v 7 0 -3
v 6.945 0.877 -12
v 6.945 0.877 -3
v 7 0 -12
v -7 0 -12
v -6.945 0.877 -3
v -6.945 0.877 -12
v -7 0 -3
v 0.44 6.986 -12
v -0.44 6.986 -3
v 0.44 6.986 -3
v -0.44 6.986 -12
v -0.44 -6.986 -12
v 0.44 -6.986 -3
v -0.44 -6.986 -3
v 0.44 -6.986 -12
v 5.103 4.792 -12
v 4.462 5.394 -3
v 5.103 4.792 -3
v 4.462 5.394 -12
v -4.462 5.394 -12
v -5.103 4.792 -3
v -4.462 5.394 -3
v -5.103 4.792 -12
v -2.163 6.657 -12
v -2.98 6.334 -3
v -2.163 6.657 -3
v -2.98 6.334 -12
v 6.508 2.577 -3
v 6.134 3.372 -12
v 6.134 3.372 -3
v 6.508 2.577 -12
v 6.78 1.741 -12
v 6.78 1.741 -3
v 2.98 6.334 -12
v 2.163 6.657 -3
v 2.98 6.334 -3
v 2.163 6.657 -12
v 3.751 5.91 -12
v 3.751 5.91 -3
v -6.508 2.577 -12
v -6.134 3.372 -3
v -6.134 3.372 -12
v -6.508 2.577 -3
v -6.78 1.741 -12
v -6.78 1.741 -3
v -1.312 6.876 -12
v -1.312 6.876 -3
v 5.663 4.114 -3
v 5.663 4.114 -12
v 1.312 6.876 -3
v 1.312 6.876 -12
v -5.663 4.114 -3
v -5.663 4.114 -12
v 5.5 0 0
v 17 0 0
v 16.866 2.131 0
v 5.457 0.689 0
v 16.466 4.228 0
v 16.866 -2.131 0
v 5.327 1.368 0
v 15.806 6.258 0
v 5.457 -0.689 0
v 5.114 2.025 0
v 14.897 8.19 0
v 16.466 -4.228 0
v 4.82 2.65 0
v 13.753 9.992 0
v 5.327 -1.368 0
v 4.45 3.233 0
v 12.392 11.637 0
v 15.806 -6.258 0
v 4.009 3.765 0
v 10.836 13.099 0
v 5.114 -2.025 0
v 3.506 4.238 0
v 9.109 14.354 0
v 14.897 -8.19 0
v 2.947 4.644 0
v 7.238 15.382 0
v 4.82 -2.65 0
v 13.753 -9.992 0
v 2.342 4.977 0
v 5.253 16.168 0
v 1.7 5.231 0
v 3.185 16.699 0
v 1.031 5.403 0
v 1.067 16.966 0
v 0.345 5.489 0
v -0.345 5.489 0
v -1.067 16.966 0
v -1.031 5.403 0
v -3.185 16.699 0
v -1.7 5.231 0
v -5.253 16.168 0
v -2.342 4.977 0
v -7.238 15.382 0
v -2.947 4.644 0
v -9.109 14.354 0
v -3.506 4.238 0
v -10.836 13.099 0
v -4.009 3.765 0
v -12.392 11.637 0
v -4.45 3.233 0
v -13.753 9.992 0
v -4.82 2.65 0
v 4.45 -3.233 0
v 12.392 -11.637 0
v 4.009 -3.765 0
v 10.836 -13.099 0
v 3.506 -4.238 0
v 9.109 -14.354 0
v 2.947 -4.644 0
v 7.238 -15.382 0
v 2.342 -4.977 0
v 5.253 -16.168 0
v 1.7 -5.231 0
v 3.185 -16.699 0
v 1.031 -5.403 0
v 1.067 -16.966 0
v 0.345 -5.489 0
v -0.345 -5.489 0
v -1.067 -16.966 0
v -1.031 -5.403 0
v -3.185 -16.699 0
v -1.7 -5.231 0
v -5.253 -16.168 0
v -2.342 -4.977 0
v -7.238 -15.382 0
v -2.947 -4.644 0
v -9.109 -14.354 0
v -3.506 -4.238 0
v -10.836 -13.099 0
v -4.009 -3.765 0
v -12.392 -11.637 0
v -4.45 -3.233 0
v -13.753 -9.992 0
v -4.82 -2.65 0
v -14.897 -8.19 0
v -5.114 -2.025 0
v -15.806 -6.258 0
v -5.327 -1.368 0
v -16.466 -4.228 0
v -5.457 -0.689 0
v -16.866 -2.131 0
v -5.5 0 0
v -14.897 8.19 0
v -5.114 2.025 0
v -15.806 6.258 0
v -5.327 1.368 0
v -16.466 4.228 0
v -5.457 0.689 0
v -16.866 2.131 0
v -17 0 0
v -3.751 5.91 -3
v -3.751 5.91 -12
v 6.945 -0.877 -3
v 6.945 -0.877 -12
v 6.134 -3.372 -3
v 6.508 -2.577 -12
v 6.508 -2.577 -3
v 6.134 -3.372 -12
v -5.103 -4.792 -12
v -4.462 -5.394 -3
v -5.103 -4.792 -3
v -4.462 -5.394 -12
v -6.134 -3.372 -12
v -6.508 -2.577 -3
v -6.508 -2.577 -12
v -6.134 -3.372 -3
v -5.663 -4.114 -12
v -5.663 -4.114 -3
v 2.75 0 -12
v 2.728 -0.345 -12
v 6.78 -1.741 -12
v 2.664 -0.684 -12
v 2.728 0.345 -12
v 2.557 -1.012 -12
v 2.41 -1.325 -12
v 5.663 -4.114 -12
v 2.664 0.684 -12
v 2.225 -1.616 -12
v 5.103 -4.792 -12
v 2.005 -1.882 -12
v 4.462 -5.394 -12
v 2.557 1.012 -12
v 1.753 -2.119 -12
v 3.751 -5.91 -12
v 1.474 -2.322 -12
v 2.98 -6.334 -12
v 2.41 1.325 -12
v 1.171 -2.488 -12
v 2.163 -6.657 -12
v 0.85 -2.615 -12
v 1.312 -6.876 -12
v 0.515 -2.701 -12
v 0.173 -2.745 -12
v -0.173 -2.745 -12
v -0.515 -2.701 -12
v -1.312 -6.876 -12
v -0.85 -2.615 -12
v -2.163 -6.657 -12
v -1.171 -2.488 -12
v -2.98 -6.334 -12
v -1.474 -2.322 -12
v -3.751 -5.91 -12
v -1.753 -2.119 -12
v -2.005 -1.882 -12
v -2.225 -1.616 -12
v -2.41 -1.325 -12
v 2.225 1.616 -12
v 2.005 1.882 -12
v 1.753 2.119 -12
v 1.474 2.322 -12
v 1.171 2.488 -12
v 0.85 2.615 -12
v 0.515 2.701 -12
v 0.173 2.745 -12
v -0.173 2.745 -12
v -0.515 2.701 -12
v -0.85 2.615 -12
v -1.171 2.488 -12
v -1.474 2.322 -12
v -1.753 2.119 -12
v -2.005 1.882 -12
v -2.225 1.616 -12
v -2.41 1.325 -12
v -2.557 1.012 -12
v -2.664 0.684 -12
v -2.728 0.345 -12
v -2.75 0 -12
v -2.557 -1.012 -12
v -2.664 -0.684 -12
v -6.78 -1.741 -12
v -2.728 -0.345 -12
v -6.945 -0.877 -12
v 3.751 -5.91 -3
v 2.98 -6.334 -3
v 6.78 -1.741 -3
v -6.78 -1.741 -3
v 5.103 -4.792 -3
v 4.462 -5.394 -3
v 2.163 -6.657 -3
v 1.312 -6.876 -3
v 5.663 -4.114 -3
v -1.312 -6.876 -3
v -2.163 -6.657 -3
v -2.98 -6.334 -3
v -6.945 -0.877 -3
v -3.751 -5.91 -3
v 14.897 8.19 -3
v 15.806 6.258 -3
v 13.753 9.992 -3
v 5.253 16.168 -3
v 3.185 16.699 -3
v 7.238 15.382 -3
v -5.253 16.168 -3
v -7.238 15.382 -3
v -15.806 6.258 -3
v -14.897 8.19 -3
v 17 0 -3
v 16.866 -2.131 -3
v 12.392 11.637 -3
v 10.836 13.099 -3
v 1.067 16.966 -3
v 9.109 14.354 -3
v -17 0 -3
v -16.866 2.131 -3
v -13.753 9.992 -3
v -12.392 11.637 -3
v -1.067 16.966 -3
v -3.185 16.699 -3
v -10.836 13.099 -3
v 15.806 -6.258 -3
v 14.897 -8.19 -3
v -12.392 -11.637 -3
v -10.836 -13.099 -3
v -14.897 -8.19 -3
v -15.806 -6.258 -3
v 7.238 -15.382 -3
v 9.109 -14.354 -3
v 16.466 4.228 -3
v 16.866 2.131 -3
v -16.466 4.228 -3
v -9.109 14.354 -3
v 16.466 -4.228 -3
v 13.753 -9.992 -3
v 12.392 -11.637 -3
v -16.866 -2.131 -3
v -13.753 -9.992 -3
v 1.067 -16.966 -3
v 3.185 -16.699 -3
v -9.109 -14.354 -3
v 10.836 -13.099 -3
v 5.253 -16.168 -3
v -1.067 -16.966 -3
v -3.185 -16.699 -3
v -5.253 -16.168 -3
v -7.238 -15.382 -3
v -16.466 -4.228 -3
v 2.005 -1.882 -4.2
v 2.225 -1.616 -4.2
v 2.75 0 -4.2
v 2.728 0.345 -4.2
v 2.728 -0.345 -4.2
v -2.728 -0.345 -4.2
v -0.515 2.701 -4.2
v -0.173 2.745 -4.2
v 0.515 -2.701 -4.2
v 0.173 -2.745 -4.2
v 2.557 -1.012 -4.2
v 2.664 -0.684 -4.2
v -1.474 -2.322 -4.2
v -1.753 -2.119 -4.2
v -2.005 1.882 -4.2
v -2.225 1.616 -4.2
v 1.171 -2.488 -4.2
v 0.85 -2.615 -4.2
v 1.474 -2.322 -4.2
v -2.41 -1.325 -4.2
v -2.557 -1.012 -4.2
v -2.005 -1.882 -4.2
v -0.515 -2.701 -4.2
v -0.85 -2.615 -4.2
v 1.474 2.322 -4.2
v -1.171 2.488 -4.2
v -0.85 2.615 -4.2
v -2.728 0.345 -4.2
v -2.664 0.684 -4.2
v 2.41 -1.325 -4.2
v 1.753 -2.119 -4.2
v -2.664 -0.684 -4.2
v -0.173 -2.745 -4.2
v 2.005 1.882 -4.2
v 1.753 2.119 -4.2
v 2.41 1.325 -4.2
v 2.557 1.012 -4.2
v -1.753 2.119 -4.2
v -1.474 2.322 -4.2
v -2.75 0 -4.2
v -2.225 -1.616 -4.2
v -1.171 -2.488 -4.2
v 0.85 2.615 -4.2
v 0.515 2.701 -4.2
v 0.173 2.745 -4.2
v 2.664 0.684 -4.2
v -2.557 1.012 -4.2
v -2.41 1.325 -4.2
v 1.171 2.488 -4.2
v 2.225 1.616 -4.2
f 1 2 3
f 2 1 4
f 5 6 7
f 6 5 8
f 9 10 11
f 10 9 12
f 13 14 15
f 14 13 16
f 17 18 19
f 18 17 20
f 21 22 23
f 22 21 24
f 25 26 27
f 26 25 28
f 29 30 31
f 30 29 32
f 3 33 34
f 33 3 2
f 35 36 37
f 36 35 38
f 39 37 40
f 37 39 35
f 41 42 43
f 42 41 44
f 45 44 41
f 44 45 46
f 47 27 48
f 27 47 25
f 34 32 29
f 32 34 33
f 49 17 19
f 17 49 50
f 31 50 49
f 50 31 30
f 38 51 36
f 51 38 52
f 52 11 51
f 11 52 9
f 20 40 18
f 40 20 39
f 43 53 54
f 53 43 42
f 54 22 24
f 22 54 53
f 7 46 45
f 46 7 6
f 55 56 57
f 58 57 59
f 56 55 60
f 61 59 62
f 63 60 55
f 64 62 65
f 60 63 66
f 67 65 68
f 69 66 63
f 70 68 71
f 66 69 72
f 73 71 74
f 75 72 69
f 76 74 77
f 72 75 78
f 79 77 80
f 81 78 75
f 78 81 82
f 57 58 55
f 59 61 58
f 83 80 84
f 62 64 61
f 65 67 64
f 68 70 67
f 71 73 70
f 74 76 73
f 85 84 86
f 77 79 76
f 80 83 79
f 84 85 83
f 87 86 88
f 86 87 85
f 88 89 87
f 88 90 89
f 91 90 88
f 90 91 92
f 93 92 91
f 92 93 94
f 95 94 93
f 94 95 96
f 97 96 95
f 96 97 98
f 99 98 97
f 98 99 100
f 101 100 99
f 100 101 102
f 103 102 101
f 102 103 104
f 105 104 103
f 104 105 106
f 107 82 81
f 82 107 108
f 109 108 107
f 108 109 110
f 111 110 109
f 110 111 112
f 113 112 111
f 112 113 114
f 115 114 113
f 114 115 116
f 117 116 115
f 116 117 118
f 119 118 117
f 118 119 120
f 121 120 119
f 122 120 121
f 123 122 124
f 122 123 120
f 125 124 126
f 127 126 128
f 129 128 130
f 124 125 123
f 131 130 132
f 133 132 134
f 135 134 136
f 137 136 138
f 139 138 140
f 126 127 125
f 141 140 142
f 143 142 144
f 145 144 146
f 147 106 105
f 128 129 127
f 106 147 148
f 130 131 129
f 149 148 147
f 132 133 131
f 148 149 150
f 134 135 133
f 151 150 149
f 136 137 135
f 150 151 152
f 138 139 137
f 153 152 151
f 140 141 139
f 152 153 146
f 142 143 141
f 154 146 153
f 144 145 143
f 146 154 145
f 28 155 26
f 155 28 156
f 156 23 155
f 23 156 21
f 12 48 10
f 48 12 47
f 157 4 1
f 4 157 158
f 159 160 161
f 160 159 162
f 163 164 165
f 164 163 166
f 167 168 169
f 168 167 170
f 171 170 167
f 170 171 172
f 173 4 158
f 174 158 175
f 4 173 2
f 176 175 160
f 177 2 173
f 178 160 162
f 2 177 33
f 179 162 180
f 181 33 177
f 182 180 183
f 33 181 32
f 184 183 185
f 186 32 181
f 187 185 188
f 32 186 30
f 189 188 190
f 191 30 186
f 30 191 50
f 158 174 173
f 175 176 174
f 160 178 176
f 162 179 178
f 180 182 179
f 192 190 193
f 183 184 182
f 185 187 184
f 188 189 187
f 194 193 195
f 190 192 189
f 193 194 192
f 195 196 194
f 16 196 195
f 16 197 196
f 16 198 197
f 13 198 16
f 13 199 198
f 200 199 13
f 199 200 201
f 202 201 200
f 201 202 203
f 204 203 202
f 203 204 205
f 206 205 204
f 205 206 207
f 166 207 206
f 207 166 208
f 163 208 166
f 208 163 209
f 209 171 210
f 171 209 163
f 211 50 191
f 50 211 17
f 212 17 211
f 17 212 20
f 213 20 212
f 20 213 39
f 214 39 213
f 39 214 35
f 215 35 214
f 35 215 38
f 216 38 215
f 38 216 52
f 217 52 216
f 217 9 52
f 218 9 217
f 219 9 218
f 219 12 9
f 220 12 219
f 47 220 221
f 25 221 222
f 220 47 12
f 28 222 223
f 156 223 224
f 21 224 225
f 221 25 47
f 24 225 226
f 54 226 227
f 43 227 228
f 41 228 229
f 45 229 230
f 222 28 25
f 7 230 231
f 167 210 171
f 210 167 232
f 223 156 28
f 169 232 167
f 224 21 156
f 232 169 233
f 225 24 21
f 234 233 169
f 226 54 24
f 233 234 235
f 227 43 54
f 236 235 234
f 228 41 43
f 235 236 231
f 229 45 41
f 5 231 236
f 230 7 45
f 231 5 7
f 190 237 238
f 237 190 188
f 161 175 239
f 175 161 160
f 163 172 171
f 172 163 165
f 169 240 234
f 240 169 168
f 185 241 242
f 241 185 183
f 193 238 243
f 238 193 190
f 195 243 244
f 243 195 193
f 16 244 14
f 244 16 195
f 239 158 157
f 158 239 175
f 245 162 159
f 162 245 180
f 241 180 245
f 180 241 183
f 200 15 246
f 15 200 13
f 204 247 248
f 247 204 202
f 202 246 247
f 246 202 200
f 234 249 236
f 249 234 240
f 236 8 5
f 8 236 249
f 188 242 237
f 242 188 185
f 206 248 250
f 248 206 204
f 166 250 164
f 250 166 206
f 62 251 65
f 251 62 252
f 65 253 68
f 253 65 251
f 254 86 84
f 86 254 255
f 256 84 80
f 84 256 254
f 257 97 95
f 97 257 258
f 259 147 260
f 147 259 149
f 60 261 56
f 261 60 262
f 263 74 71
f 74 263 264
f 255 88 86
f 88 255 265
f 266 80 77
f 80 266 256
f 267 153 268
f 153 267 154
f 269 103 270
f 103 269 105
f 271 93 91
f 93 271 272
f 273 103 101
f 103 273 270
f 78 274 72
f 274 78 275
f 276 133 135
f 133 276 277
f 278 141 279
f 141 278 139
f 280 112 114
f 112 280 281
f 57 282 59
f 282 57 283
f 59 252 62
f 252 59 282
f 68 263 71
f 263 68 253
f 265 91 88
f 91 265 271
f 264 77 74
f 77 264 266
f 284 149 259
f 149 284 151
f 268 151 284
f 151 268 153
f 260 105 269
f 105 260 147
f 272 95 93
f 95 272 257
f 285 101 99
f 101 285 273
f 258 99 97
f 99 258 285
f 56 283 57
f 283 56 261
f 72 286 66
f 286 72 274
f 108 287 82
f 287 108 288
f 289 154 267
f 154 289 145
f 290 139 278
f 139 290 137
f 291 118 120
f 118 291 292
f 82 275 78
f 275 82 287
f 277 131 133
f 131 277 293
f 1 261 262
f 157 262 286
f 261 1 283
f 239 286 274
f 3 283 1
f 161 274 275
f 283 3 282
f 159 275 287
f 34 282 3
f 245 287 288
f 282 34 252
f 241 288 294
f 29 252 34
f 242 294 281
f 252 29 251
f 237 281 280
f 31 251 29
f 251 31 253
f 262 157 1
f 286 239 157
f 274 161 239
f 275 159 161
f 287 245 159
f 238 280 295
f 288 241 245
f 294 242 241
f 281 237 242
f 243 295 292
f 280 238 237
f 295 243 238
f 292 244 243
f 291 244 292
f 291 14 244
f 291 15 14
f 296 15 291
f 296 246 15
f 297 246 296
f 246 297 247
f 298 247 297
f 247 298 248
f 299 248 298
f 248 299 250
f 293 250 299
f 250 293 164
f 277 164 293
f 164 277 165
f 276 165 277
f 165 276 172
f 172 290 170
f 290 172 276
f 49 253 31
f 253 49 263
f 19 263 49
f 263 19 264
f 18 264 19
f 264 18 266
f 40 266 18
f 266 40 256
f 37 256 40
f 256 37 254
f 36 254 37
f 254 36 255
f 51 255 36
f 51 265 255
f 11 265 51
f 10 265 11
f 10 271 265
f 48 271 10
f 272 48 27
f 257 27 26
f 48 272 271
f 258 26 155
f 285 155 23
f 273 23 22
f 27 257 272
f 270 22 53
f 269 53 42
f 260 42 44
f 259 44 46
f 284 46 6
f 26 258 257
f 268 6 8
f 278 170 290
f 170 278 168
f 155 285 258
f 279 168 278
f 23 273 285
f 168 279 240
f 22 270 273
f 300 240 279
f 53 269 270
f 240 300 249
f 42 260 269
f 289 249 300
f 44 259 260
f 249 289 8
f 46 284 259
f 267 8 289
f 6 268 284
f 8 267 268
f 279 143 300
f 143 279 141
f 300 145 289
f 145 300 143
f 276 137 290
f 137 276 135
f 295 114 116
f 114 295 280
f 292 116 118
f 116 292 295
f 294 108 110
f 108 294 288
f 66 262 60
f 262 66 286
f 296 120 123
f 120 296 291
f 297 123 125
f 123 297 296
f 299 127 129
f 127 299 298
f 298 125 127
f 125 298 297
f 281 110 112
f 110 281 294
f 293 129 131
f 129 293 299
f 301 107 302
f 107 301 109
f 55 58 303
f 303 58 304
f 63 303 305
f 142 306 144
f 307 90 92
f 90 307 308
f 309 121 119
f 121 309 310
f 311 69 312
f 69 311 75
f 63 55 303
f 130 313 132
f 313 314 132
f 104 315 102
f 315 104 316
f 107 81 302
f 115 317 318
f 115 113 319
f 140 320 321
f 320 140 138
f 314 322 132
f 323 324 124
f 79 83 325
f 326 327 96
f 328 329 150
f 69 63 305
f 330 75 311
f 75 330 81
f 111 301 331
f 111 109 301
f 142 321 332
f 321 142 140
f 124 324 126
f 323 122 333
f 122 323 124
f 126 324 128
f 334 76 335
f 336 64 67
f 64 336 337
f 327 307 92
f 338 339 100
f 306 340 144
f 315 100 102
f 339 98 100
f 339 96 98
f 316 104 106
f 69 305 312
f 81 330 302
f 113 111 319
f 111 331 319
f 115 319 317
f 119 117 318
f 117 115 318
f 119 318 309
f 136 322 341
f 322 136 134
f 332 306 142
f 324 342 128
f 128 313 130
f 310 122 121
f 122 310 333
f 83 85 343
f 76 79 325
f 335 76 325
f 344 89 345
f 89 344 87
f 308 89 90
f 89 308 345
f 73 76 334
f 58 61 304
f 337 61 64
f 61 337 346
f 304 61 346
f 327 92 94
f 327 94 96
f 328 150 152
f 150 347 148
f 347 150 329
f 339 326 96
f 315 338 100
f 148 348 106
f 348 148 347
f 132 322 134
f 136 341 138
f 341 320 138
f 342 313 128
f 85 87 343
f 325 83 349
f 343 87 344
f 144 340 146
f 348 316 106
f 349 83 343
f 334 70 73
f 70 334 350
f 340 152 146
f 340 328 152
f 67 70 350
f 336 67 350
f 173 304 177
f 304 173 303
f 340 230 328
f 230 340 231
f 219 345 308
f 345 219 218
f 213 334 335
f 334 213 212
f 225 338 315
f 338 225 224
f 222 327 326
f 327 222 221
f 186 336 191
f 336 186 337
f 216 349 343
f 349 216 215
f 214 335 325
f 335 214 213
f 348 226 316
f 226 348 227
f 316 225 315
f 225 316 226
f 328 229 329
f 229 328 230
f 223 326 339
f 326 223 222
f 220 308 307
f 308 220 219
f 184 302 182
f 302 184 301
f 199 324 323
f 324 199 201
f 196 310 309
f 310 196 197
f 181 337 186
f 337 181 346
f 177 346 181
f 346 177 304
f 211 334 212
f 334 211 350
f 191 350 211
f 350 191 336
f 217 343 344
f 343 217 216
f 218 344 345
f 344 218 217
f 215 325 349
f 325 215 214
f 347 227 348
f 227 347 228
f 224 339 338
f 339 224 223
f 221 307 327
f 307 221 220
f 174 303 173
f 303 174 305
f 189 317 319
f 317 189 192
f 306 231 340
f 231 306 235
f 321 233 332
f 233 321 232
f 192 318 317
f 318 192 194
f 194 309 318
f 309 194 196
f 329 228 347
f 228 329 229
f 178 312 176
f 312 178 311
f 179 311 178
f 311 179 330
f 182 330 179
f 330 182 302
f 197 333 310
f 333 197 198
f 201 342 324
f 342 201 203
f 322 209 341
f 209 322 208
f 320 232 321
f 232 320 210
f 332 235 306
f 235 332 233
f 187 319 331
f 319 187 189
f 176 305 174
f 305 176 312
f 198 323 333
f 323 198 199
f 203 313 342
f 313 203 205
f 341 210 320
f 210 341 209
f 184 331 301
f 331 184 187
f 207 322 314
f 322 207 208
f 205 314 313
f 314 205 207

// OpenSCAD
$fn = 50;


difference() {
	union() {
		translate(v = [0, 0, -12.0000000000]) {
			cylinder(h = 12, r = 7.0000000000);
		}
		translate(v = [0, 0, -3.0000000000]) {
			cylinder(h = 3, r = 17.0000000000);
		}
	}
	union() {
		translate(v = [0, 0, 0]) {
			rotate(a = [0, 0, 0]) {
				difference() {
					union() {
						#translate(v = [0, 0, -12.0000000000]) {
							cylinder(h = 12, r = 2.2500000000);
						}
						#translate(v = [0, 0, -4.2000000000]) {
							cylinder(h = 4.2000000000, r = 7.0000000000, r1 = 2.7500000000, r2 = 5.5000000000);
						}
						#translate(v = [0, 0, -12.0000000000]) {
							cylinder(h = 12, r = 2.7500000000);
						}
						#translate(v = [0, 0, -12.0000000000]) {
							cylinder(h = 12, r = 2.2500000000);
						}
					}
					union();
				}
			}
		}
	}
}
